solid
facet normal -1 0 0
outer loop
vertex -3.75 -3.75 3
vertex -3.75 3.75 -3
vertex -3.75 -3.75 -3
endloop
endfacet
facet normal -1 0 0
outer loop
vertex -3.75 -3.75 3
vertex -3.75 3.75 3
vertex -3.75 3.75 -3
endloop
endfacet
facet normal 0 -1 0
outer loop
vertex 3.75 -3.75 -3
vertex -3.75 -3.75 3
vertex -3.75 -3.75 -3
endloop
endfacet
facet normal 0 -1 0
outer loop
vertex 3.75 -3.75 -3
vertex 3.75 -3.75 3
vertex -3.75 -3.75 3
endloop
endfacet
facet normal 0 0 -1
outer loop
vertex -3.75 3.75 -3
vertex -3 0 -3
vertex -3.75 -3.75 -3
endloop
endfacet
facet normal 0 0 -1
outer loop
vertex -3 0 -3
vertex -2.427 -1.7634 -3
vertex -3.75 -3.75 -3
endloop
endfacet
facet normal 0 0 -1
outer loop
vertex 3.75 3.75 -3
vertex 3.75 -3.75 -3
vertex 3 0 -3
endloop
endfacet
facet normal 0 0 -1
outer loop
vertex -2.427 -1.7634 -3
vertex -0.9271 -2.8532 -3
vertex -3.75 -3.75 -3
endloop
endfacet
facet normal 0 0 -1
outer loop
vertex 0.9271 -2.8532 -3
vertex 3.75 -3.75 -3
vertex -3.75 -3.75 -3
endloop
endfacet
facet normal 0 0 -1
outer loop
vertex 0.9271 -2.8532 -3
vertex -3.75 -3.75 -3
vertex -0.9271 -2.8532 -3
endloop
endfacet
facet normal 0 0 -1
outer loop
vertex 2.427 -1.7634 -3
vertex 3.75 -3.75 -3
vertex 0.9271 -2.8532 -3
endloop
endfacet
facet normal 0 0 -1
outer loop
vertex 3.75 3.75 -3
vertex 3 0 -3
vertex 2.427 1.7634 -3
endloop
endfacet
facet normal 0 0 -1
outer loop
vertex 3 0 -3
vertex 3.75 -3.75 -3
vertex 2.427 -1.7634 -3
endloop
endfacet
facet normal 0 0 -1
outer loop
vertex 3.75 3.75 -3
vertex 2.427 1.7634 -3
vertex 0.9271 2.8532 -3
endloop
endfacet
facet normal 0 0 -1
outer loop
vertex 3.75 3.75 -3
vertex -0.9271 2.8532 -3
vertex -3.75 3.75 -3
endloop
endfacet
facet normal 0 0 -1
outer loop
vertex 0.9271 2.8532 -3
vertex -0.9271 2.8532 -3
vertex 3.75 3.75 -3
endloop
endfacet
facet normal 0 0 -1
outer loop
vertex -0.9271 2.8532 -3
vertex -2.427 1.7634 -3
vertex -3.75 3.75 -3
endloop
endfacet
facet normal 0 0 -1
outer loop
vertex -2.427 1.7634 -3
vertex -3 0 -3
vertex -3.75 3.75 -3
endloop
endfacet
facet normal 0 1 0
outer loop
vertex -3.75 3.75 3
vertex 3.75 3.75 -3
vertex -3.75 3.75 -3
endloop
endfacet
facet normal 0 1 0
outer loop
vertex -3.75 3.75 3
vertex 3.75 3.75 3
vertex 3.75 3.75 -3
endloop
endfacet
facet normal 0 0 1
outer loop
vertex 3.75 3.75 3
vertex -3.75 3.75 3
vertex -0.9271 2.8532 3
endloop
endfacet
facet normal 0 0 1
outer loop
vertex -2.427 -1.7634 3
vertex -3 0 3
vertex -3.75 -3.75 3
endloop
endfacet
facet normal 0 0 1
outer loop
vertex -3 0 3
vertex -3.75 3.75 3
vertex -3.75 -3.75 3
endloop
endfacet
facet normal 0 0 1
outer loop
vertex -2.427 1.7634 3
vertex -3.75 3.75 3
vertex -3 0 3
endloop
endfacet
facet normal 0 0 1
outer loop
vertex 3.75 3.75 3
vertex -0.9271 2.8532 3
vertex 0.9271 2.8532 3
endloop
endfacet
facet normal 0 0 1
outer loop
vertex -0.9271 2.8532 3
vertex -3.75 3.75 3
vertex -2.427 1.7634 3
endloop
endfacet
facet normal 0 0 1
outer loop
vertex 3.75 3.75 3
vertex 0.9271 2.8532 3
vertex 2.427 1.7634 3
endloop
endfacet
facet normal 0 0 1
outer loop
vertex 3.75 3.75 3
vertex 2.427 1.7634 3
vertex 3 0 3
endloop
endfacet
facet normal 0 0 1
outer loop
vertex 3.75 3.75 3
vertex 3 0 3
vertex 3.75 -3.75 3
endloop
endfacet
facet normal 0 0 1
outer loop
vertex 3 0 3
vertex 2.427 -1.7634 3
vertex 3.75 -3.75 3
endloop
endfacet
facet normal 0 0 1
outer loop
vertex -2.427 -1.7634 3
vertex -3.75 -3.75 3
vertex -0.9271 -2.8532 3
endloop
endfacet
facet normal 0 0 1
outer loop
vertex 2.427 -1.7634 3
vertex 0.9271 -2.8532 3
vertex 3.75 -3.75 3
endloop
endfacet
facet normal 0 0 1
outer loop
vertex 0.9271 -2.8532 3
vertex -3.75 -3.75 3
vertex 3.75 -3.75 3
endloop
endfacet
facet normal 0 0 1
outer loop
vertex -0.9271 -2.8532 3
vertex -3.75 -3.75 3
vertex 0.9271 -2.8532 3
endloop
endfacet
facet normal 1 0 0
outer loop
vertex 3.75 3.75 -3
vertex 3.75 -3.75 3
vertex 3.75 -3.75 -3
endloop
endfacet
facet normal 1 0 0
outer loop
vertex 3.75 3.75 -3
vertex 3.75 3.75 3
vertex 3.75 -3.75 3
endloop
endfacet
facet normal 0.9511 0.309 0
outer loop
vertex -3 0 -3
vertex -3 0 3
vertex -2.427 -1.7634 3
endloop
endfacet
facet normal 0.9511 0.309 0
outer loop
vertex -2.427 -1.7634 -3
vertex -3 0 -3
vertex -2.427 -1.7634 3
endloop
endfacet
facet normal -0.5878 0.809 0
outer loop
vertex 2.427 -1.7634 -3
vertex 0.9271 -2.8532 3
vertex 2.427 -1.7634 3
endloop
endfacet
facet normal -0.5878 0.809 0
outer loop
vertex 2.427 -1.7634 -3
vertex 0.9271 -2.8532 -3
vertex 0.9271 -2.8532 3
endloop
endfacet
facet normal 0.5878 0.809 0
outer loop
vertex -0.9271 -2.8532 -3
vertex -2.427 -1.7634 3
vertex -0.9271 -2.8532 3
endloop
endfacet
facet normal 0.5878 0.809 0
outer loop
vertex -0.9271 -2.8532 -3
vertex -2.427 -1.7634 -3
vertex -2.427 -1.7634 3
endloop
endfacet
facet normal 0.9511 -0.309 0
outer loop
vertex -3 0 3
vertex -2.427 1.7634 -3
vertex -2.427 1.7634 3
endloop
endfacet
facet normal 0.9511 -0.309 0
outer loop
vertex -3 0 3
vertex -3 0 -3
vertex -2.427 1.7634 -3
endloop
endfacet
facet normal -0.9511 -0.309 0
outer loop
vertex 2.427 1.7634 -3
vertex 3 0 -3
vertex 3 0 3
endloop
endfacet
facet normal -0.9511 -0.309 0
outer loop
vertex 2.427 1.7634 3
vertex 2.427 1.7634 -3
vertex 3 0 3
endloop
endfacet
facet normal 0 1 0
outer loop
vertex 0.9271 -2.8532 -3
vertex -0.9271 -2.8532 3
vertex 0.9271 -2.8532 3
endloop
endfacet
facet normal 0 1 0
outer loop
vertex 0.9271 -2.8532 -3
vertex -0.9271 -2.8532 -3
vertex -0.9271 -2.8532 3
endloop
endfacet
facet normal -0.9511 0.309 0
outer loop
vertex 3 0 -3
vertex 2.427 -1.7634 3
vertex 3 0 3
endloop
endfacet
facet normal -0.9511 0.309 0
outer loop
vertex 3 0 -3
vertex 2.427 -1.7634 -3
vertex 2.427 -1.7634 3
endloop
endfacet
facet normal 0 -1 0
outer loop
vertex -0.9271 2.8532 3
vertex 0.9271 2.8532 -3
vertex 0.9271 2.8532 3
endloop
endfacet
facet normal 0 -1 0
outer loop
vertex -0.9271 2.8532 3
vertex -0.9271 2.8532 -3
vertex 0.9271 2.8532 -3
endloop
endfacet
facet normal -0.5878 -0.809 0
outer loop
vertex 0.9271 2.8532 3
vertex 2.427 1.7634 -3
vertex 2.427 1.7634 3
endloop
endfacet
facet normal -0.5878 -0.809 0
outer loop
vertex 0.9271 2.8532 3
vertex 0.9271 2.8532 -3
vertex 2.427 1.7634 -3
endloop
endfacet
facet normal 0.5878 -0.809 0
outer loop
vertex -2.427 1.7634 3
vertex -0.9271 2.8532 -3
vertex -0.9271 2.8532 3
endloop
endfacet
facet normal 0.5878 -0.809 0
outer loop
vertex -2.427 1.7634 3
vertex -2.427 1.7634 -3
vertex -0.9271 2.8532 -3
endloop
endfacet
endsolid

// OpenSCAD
//fan raise

//change this to how much you want your fan raised 
raise = 6; //this is in mm

difference(){
	cube([7.5,7.5,raise], center = true);
	cylinder(raise*2, 3, 3, center = true);
	}
